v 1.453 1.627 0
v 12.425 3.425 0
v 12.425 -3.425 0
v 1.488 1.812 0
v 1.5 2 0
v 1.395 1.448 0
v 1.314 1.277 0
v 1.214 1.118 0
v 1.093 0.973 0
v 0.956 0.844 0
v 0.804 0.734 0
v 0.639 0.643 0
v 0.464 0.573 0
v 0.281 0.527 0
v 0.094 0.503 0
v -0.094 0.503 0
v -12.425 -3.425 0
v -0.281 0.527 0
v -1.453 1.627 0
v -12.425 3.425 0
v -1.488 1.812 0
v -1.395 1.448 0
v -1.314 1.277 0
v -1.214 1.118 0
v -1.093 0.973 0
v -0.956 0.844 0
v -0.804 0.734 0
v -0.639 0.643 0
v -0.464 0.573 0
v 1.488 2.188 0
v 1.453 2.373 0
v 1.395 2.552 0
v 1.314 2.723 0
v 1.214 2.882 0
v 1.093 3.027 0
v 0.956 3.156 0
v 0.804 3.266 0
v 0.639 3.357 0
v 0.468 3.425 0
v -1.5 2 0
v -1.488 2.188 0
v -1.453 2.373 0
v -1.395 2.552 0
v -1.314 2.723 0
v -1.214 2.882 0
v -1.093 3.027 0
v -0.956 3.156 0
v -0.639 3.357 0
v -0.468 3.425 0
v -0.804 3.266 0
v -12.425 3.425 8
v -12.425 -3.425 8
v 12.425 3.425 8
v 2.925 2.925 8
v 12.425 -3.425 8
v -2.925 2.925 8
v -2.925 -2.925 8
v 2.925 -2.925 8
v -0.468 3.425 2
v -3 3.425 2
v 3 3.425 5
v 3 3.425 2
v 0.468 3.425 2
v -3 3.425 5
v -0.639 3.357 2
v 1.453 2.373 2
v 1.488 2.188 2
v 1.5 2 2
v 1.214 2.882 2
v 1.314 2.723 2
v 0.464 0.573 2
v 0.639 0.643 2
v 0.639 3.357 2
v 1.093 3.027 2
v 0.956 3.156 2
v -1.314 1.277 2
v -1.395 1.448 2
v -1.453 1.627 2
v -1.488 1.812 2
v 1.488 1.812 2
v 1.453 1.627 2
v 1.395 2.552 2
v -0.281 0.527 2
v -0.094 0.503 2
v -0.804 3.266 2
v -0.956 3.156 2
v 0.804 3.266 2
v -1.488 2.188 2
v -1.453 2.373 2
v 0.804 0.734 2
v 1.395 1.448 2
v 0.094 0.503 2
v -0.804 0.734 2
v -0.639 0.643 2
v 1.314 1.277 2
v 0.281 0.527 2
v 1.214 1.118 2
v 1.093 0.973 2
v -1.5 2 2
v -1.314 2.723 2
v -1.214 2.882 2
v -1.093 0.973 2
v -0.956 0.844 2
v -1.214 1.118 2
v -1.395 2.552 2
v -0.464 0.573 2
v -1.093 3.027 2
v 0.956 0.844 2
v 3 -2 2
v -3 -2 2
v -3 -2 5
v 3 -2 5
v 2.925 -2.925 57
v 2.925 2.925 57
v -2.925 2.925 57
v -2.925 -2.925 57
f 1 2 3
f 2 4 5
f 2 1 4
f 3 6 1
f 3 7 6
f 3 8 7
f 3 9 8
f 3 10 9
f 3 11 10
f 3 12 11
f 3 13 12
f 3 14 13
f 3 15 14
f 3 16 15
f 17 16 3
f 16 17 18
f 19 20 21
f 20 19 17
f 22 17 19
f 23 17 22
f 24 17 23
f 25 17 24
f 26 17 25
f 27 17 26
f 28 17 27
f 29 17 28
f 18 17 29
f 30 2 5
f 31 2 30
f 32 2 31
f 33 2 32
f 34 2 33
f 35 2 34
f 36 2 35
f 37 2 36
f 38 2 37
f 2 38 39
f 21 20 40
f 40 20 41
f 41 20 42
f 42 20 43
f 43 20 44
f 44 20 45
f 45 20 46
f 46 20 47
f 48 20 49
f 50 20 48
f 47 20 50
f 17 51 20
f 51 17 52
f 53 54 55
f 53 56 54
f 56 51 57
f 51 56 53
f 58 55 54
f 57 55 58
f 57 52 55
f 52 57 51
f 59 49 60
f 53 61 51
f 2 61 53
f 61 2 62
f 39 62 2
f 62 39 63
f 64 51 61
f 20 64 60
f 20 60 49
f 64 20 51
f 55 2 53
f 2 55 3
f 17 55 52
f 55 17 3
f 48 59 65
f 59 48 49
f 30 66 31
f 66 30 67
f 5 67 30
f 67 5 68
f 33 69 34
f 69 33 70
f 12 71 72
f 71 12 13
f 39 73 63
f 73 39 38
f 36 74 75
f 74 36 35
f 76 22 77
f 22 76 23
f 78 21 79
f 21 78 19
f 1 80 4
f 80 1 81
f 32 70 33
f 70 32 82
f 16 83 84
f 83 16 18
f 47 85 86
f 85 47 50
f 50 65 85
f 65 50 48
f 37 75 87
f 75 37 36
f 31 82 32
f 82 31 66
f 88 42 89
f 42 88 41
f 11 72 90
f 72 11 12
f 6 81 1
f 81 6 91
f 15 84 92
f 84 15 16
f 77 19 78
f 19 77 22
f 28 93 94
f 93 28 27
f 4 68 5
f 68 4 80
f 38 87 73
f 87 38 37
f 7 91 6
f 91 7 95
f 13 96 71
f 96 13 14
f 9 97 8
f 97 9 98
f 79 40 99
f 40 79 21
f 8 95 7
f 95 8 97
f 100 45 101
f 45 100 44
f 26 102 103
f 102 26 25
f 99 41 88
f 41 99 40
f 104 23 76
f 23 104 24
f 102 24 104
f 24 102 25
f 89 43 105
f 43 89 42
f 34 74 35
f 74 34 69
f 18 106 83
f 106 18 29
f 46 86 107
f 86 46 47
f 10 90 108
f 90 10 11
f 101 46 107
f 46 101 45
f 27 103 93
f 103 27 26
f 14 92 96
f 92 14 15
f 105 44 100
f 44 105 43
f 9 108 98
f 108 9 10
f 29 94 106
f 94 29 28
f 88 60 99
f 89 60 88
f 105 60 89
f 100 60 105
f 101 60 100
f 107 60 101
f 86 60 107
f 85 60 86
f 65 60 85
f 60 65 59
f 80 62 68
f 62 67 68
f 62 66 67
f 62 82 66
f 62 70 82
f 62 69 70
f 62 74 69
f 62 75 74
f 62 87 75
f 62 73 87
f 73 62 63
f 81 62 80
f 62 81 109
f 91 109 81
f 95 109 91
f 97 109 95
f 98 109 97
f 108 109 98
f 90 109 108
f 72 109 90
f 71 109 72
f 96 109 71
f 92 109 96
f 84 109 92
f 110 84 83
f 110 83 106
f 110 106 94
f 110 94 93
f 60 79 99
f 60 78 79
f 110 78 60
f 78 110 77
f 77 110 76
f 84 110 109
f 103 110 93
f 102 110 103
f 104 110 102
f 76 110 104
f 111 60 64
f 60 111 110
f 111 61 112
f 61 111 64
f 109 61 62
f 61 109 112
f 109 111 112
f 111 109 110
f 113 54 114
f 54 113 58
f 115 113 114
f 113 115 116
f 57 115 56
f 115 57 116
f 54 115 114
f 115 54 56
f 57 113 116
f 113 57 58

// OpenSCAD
module square_with_hole_and_nut(vida_deligi_cap = 3, govde_genisligi = 7, katman_yuksekligi = 1) {
    // İlk katman (parametrik yüksekliği olan)
    difference() {
        linear_extrude(height = 8) {
            square([24.85, 6.85], center = true);
        }

        // Delik
        translate([0, (govde_genisligi - vida_deligi_cap) / 2, 0]) {
            cylinder(d = vida_deligi_cap, h = 7, center = true, $fn = 50); // Delik (M3 için)
        }
        
        translate([0, 1, 2])
        linear_extrude(height = 3) {
            square([6, 6], center = true);
        }
        
    }
    
    //translate([0, 0, katman_yuksekligi])
    
    //dikdortgen_devami();
}

// İkinci obje: İçeride dikdörtgen bir kesit alanı olan yapı
module dikdortgen_devami(dikdortgen_genislik = 20, dikdortgen_yukseklik = 5, yukseklik = 5) {
    difference() {
        // Ana dikdörtgen prizma
        linear_extrude(height = yukseklik) {
            square([24.85, 6.85], center = true);
        }

        // İçerideki dikdörtgen kesit
        translate([0, 1, 1]) {
            linear_extrude(height = 3) {
                square([5.9, 5.9], center = true);
            }
        }
    }
}


union() {
    square_with_hole_and_nut();

    translate([0, 0, 7 + (50 / 2)]) {
        cube([5.85, 5.85, 50], center = true);
    }

}
